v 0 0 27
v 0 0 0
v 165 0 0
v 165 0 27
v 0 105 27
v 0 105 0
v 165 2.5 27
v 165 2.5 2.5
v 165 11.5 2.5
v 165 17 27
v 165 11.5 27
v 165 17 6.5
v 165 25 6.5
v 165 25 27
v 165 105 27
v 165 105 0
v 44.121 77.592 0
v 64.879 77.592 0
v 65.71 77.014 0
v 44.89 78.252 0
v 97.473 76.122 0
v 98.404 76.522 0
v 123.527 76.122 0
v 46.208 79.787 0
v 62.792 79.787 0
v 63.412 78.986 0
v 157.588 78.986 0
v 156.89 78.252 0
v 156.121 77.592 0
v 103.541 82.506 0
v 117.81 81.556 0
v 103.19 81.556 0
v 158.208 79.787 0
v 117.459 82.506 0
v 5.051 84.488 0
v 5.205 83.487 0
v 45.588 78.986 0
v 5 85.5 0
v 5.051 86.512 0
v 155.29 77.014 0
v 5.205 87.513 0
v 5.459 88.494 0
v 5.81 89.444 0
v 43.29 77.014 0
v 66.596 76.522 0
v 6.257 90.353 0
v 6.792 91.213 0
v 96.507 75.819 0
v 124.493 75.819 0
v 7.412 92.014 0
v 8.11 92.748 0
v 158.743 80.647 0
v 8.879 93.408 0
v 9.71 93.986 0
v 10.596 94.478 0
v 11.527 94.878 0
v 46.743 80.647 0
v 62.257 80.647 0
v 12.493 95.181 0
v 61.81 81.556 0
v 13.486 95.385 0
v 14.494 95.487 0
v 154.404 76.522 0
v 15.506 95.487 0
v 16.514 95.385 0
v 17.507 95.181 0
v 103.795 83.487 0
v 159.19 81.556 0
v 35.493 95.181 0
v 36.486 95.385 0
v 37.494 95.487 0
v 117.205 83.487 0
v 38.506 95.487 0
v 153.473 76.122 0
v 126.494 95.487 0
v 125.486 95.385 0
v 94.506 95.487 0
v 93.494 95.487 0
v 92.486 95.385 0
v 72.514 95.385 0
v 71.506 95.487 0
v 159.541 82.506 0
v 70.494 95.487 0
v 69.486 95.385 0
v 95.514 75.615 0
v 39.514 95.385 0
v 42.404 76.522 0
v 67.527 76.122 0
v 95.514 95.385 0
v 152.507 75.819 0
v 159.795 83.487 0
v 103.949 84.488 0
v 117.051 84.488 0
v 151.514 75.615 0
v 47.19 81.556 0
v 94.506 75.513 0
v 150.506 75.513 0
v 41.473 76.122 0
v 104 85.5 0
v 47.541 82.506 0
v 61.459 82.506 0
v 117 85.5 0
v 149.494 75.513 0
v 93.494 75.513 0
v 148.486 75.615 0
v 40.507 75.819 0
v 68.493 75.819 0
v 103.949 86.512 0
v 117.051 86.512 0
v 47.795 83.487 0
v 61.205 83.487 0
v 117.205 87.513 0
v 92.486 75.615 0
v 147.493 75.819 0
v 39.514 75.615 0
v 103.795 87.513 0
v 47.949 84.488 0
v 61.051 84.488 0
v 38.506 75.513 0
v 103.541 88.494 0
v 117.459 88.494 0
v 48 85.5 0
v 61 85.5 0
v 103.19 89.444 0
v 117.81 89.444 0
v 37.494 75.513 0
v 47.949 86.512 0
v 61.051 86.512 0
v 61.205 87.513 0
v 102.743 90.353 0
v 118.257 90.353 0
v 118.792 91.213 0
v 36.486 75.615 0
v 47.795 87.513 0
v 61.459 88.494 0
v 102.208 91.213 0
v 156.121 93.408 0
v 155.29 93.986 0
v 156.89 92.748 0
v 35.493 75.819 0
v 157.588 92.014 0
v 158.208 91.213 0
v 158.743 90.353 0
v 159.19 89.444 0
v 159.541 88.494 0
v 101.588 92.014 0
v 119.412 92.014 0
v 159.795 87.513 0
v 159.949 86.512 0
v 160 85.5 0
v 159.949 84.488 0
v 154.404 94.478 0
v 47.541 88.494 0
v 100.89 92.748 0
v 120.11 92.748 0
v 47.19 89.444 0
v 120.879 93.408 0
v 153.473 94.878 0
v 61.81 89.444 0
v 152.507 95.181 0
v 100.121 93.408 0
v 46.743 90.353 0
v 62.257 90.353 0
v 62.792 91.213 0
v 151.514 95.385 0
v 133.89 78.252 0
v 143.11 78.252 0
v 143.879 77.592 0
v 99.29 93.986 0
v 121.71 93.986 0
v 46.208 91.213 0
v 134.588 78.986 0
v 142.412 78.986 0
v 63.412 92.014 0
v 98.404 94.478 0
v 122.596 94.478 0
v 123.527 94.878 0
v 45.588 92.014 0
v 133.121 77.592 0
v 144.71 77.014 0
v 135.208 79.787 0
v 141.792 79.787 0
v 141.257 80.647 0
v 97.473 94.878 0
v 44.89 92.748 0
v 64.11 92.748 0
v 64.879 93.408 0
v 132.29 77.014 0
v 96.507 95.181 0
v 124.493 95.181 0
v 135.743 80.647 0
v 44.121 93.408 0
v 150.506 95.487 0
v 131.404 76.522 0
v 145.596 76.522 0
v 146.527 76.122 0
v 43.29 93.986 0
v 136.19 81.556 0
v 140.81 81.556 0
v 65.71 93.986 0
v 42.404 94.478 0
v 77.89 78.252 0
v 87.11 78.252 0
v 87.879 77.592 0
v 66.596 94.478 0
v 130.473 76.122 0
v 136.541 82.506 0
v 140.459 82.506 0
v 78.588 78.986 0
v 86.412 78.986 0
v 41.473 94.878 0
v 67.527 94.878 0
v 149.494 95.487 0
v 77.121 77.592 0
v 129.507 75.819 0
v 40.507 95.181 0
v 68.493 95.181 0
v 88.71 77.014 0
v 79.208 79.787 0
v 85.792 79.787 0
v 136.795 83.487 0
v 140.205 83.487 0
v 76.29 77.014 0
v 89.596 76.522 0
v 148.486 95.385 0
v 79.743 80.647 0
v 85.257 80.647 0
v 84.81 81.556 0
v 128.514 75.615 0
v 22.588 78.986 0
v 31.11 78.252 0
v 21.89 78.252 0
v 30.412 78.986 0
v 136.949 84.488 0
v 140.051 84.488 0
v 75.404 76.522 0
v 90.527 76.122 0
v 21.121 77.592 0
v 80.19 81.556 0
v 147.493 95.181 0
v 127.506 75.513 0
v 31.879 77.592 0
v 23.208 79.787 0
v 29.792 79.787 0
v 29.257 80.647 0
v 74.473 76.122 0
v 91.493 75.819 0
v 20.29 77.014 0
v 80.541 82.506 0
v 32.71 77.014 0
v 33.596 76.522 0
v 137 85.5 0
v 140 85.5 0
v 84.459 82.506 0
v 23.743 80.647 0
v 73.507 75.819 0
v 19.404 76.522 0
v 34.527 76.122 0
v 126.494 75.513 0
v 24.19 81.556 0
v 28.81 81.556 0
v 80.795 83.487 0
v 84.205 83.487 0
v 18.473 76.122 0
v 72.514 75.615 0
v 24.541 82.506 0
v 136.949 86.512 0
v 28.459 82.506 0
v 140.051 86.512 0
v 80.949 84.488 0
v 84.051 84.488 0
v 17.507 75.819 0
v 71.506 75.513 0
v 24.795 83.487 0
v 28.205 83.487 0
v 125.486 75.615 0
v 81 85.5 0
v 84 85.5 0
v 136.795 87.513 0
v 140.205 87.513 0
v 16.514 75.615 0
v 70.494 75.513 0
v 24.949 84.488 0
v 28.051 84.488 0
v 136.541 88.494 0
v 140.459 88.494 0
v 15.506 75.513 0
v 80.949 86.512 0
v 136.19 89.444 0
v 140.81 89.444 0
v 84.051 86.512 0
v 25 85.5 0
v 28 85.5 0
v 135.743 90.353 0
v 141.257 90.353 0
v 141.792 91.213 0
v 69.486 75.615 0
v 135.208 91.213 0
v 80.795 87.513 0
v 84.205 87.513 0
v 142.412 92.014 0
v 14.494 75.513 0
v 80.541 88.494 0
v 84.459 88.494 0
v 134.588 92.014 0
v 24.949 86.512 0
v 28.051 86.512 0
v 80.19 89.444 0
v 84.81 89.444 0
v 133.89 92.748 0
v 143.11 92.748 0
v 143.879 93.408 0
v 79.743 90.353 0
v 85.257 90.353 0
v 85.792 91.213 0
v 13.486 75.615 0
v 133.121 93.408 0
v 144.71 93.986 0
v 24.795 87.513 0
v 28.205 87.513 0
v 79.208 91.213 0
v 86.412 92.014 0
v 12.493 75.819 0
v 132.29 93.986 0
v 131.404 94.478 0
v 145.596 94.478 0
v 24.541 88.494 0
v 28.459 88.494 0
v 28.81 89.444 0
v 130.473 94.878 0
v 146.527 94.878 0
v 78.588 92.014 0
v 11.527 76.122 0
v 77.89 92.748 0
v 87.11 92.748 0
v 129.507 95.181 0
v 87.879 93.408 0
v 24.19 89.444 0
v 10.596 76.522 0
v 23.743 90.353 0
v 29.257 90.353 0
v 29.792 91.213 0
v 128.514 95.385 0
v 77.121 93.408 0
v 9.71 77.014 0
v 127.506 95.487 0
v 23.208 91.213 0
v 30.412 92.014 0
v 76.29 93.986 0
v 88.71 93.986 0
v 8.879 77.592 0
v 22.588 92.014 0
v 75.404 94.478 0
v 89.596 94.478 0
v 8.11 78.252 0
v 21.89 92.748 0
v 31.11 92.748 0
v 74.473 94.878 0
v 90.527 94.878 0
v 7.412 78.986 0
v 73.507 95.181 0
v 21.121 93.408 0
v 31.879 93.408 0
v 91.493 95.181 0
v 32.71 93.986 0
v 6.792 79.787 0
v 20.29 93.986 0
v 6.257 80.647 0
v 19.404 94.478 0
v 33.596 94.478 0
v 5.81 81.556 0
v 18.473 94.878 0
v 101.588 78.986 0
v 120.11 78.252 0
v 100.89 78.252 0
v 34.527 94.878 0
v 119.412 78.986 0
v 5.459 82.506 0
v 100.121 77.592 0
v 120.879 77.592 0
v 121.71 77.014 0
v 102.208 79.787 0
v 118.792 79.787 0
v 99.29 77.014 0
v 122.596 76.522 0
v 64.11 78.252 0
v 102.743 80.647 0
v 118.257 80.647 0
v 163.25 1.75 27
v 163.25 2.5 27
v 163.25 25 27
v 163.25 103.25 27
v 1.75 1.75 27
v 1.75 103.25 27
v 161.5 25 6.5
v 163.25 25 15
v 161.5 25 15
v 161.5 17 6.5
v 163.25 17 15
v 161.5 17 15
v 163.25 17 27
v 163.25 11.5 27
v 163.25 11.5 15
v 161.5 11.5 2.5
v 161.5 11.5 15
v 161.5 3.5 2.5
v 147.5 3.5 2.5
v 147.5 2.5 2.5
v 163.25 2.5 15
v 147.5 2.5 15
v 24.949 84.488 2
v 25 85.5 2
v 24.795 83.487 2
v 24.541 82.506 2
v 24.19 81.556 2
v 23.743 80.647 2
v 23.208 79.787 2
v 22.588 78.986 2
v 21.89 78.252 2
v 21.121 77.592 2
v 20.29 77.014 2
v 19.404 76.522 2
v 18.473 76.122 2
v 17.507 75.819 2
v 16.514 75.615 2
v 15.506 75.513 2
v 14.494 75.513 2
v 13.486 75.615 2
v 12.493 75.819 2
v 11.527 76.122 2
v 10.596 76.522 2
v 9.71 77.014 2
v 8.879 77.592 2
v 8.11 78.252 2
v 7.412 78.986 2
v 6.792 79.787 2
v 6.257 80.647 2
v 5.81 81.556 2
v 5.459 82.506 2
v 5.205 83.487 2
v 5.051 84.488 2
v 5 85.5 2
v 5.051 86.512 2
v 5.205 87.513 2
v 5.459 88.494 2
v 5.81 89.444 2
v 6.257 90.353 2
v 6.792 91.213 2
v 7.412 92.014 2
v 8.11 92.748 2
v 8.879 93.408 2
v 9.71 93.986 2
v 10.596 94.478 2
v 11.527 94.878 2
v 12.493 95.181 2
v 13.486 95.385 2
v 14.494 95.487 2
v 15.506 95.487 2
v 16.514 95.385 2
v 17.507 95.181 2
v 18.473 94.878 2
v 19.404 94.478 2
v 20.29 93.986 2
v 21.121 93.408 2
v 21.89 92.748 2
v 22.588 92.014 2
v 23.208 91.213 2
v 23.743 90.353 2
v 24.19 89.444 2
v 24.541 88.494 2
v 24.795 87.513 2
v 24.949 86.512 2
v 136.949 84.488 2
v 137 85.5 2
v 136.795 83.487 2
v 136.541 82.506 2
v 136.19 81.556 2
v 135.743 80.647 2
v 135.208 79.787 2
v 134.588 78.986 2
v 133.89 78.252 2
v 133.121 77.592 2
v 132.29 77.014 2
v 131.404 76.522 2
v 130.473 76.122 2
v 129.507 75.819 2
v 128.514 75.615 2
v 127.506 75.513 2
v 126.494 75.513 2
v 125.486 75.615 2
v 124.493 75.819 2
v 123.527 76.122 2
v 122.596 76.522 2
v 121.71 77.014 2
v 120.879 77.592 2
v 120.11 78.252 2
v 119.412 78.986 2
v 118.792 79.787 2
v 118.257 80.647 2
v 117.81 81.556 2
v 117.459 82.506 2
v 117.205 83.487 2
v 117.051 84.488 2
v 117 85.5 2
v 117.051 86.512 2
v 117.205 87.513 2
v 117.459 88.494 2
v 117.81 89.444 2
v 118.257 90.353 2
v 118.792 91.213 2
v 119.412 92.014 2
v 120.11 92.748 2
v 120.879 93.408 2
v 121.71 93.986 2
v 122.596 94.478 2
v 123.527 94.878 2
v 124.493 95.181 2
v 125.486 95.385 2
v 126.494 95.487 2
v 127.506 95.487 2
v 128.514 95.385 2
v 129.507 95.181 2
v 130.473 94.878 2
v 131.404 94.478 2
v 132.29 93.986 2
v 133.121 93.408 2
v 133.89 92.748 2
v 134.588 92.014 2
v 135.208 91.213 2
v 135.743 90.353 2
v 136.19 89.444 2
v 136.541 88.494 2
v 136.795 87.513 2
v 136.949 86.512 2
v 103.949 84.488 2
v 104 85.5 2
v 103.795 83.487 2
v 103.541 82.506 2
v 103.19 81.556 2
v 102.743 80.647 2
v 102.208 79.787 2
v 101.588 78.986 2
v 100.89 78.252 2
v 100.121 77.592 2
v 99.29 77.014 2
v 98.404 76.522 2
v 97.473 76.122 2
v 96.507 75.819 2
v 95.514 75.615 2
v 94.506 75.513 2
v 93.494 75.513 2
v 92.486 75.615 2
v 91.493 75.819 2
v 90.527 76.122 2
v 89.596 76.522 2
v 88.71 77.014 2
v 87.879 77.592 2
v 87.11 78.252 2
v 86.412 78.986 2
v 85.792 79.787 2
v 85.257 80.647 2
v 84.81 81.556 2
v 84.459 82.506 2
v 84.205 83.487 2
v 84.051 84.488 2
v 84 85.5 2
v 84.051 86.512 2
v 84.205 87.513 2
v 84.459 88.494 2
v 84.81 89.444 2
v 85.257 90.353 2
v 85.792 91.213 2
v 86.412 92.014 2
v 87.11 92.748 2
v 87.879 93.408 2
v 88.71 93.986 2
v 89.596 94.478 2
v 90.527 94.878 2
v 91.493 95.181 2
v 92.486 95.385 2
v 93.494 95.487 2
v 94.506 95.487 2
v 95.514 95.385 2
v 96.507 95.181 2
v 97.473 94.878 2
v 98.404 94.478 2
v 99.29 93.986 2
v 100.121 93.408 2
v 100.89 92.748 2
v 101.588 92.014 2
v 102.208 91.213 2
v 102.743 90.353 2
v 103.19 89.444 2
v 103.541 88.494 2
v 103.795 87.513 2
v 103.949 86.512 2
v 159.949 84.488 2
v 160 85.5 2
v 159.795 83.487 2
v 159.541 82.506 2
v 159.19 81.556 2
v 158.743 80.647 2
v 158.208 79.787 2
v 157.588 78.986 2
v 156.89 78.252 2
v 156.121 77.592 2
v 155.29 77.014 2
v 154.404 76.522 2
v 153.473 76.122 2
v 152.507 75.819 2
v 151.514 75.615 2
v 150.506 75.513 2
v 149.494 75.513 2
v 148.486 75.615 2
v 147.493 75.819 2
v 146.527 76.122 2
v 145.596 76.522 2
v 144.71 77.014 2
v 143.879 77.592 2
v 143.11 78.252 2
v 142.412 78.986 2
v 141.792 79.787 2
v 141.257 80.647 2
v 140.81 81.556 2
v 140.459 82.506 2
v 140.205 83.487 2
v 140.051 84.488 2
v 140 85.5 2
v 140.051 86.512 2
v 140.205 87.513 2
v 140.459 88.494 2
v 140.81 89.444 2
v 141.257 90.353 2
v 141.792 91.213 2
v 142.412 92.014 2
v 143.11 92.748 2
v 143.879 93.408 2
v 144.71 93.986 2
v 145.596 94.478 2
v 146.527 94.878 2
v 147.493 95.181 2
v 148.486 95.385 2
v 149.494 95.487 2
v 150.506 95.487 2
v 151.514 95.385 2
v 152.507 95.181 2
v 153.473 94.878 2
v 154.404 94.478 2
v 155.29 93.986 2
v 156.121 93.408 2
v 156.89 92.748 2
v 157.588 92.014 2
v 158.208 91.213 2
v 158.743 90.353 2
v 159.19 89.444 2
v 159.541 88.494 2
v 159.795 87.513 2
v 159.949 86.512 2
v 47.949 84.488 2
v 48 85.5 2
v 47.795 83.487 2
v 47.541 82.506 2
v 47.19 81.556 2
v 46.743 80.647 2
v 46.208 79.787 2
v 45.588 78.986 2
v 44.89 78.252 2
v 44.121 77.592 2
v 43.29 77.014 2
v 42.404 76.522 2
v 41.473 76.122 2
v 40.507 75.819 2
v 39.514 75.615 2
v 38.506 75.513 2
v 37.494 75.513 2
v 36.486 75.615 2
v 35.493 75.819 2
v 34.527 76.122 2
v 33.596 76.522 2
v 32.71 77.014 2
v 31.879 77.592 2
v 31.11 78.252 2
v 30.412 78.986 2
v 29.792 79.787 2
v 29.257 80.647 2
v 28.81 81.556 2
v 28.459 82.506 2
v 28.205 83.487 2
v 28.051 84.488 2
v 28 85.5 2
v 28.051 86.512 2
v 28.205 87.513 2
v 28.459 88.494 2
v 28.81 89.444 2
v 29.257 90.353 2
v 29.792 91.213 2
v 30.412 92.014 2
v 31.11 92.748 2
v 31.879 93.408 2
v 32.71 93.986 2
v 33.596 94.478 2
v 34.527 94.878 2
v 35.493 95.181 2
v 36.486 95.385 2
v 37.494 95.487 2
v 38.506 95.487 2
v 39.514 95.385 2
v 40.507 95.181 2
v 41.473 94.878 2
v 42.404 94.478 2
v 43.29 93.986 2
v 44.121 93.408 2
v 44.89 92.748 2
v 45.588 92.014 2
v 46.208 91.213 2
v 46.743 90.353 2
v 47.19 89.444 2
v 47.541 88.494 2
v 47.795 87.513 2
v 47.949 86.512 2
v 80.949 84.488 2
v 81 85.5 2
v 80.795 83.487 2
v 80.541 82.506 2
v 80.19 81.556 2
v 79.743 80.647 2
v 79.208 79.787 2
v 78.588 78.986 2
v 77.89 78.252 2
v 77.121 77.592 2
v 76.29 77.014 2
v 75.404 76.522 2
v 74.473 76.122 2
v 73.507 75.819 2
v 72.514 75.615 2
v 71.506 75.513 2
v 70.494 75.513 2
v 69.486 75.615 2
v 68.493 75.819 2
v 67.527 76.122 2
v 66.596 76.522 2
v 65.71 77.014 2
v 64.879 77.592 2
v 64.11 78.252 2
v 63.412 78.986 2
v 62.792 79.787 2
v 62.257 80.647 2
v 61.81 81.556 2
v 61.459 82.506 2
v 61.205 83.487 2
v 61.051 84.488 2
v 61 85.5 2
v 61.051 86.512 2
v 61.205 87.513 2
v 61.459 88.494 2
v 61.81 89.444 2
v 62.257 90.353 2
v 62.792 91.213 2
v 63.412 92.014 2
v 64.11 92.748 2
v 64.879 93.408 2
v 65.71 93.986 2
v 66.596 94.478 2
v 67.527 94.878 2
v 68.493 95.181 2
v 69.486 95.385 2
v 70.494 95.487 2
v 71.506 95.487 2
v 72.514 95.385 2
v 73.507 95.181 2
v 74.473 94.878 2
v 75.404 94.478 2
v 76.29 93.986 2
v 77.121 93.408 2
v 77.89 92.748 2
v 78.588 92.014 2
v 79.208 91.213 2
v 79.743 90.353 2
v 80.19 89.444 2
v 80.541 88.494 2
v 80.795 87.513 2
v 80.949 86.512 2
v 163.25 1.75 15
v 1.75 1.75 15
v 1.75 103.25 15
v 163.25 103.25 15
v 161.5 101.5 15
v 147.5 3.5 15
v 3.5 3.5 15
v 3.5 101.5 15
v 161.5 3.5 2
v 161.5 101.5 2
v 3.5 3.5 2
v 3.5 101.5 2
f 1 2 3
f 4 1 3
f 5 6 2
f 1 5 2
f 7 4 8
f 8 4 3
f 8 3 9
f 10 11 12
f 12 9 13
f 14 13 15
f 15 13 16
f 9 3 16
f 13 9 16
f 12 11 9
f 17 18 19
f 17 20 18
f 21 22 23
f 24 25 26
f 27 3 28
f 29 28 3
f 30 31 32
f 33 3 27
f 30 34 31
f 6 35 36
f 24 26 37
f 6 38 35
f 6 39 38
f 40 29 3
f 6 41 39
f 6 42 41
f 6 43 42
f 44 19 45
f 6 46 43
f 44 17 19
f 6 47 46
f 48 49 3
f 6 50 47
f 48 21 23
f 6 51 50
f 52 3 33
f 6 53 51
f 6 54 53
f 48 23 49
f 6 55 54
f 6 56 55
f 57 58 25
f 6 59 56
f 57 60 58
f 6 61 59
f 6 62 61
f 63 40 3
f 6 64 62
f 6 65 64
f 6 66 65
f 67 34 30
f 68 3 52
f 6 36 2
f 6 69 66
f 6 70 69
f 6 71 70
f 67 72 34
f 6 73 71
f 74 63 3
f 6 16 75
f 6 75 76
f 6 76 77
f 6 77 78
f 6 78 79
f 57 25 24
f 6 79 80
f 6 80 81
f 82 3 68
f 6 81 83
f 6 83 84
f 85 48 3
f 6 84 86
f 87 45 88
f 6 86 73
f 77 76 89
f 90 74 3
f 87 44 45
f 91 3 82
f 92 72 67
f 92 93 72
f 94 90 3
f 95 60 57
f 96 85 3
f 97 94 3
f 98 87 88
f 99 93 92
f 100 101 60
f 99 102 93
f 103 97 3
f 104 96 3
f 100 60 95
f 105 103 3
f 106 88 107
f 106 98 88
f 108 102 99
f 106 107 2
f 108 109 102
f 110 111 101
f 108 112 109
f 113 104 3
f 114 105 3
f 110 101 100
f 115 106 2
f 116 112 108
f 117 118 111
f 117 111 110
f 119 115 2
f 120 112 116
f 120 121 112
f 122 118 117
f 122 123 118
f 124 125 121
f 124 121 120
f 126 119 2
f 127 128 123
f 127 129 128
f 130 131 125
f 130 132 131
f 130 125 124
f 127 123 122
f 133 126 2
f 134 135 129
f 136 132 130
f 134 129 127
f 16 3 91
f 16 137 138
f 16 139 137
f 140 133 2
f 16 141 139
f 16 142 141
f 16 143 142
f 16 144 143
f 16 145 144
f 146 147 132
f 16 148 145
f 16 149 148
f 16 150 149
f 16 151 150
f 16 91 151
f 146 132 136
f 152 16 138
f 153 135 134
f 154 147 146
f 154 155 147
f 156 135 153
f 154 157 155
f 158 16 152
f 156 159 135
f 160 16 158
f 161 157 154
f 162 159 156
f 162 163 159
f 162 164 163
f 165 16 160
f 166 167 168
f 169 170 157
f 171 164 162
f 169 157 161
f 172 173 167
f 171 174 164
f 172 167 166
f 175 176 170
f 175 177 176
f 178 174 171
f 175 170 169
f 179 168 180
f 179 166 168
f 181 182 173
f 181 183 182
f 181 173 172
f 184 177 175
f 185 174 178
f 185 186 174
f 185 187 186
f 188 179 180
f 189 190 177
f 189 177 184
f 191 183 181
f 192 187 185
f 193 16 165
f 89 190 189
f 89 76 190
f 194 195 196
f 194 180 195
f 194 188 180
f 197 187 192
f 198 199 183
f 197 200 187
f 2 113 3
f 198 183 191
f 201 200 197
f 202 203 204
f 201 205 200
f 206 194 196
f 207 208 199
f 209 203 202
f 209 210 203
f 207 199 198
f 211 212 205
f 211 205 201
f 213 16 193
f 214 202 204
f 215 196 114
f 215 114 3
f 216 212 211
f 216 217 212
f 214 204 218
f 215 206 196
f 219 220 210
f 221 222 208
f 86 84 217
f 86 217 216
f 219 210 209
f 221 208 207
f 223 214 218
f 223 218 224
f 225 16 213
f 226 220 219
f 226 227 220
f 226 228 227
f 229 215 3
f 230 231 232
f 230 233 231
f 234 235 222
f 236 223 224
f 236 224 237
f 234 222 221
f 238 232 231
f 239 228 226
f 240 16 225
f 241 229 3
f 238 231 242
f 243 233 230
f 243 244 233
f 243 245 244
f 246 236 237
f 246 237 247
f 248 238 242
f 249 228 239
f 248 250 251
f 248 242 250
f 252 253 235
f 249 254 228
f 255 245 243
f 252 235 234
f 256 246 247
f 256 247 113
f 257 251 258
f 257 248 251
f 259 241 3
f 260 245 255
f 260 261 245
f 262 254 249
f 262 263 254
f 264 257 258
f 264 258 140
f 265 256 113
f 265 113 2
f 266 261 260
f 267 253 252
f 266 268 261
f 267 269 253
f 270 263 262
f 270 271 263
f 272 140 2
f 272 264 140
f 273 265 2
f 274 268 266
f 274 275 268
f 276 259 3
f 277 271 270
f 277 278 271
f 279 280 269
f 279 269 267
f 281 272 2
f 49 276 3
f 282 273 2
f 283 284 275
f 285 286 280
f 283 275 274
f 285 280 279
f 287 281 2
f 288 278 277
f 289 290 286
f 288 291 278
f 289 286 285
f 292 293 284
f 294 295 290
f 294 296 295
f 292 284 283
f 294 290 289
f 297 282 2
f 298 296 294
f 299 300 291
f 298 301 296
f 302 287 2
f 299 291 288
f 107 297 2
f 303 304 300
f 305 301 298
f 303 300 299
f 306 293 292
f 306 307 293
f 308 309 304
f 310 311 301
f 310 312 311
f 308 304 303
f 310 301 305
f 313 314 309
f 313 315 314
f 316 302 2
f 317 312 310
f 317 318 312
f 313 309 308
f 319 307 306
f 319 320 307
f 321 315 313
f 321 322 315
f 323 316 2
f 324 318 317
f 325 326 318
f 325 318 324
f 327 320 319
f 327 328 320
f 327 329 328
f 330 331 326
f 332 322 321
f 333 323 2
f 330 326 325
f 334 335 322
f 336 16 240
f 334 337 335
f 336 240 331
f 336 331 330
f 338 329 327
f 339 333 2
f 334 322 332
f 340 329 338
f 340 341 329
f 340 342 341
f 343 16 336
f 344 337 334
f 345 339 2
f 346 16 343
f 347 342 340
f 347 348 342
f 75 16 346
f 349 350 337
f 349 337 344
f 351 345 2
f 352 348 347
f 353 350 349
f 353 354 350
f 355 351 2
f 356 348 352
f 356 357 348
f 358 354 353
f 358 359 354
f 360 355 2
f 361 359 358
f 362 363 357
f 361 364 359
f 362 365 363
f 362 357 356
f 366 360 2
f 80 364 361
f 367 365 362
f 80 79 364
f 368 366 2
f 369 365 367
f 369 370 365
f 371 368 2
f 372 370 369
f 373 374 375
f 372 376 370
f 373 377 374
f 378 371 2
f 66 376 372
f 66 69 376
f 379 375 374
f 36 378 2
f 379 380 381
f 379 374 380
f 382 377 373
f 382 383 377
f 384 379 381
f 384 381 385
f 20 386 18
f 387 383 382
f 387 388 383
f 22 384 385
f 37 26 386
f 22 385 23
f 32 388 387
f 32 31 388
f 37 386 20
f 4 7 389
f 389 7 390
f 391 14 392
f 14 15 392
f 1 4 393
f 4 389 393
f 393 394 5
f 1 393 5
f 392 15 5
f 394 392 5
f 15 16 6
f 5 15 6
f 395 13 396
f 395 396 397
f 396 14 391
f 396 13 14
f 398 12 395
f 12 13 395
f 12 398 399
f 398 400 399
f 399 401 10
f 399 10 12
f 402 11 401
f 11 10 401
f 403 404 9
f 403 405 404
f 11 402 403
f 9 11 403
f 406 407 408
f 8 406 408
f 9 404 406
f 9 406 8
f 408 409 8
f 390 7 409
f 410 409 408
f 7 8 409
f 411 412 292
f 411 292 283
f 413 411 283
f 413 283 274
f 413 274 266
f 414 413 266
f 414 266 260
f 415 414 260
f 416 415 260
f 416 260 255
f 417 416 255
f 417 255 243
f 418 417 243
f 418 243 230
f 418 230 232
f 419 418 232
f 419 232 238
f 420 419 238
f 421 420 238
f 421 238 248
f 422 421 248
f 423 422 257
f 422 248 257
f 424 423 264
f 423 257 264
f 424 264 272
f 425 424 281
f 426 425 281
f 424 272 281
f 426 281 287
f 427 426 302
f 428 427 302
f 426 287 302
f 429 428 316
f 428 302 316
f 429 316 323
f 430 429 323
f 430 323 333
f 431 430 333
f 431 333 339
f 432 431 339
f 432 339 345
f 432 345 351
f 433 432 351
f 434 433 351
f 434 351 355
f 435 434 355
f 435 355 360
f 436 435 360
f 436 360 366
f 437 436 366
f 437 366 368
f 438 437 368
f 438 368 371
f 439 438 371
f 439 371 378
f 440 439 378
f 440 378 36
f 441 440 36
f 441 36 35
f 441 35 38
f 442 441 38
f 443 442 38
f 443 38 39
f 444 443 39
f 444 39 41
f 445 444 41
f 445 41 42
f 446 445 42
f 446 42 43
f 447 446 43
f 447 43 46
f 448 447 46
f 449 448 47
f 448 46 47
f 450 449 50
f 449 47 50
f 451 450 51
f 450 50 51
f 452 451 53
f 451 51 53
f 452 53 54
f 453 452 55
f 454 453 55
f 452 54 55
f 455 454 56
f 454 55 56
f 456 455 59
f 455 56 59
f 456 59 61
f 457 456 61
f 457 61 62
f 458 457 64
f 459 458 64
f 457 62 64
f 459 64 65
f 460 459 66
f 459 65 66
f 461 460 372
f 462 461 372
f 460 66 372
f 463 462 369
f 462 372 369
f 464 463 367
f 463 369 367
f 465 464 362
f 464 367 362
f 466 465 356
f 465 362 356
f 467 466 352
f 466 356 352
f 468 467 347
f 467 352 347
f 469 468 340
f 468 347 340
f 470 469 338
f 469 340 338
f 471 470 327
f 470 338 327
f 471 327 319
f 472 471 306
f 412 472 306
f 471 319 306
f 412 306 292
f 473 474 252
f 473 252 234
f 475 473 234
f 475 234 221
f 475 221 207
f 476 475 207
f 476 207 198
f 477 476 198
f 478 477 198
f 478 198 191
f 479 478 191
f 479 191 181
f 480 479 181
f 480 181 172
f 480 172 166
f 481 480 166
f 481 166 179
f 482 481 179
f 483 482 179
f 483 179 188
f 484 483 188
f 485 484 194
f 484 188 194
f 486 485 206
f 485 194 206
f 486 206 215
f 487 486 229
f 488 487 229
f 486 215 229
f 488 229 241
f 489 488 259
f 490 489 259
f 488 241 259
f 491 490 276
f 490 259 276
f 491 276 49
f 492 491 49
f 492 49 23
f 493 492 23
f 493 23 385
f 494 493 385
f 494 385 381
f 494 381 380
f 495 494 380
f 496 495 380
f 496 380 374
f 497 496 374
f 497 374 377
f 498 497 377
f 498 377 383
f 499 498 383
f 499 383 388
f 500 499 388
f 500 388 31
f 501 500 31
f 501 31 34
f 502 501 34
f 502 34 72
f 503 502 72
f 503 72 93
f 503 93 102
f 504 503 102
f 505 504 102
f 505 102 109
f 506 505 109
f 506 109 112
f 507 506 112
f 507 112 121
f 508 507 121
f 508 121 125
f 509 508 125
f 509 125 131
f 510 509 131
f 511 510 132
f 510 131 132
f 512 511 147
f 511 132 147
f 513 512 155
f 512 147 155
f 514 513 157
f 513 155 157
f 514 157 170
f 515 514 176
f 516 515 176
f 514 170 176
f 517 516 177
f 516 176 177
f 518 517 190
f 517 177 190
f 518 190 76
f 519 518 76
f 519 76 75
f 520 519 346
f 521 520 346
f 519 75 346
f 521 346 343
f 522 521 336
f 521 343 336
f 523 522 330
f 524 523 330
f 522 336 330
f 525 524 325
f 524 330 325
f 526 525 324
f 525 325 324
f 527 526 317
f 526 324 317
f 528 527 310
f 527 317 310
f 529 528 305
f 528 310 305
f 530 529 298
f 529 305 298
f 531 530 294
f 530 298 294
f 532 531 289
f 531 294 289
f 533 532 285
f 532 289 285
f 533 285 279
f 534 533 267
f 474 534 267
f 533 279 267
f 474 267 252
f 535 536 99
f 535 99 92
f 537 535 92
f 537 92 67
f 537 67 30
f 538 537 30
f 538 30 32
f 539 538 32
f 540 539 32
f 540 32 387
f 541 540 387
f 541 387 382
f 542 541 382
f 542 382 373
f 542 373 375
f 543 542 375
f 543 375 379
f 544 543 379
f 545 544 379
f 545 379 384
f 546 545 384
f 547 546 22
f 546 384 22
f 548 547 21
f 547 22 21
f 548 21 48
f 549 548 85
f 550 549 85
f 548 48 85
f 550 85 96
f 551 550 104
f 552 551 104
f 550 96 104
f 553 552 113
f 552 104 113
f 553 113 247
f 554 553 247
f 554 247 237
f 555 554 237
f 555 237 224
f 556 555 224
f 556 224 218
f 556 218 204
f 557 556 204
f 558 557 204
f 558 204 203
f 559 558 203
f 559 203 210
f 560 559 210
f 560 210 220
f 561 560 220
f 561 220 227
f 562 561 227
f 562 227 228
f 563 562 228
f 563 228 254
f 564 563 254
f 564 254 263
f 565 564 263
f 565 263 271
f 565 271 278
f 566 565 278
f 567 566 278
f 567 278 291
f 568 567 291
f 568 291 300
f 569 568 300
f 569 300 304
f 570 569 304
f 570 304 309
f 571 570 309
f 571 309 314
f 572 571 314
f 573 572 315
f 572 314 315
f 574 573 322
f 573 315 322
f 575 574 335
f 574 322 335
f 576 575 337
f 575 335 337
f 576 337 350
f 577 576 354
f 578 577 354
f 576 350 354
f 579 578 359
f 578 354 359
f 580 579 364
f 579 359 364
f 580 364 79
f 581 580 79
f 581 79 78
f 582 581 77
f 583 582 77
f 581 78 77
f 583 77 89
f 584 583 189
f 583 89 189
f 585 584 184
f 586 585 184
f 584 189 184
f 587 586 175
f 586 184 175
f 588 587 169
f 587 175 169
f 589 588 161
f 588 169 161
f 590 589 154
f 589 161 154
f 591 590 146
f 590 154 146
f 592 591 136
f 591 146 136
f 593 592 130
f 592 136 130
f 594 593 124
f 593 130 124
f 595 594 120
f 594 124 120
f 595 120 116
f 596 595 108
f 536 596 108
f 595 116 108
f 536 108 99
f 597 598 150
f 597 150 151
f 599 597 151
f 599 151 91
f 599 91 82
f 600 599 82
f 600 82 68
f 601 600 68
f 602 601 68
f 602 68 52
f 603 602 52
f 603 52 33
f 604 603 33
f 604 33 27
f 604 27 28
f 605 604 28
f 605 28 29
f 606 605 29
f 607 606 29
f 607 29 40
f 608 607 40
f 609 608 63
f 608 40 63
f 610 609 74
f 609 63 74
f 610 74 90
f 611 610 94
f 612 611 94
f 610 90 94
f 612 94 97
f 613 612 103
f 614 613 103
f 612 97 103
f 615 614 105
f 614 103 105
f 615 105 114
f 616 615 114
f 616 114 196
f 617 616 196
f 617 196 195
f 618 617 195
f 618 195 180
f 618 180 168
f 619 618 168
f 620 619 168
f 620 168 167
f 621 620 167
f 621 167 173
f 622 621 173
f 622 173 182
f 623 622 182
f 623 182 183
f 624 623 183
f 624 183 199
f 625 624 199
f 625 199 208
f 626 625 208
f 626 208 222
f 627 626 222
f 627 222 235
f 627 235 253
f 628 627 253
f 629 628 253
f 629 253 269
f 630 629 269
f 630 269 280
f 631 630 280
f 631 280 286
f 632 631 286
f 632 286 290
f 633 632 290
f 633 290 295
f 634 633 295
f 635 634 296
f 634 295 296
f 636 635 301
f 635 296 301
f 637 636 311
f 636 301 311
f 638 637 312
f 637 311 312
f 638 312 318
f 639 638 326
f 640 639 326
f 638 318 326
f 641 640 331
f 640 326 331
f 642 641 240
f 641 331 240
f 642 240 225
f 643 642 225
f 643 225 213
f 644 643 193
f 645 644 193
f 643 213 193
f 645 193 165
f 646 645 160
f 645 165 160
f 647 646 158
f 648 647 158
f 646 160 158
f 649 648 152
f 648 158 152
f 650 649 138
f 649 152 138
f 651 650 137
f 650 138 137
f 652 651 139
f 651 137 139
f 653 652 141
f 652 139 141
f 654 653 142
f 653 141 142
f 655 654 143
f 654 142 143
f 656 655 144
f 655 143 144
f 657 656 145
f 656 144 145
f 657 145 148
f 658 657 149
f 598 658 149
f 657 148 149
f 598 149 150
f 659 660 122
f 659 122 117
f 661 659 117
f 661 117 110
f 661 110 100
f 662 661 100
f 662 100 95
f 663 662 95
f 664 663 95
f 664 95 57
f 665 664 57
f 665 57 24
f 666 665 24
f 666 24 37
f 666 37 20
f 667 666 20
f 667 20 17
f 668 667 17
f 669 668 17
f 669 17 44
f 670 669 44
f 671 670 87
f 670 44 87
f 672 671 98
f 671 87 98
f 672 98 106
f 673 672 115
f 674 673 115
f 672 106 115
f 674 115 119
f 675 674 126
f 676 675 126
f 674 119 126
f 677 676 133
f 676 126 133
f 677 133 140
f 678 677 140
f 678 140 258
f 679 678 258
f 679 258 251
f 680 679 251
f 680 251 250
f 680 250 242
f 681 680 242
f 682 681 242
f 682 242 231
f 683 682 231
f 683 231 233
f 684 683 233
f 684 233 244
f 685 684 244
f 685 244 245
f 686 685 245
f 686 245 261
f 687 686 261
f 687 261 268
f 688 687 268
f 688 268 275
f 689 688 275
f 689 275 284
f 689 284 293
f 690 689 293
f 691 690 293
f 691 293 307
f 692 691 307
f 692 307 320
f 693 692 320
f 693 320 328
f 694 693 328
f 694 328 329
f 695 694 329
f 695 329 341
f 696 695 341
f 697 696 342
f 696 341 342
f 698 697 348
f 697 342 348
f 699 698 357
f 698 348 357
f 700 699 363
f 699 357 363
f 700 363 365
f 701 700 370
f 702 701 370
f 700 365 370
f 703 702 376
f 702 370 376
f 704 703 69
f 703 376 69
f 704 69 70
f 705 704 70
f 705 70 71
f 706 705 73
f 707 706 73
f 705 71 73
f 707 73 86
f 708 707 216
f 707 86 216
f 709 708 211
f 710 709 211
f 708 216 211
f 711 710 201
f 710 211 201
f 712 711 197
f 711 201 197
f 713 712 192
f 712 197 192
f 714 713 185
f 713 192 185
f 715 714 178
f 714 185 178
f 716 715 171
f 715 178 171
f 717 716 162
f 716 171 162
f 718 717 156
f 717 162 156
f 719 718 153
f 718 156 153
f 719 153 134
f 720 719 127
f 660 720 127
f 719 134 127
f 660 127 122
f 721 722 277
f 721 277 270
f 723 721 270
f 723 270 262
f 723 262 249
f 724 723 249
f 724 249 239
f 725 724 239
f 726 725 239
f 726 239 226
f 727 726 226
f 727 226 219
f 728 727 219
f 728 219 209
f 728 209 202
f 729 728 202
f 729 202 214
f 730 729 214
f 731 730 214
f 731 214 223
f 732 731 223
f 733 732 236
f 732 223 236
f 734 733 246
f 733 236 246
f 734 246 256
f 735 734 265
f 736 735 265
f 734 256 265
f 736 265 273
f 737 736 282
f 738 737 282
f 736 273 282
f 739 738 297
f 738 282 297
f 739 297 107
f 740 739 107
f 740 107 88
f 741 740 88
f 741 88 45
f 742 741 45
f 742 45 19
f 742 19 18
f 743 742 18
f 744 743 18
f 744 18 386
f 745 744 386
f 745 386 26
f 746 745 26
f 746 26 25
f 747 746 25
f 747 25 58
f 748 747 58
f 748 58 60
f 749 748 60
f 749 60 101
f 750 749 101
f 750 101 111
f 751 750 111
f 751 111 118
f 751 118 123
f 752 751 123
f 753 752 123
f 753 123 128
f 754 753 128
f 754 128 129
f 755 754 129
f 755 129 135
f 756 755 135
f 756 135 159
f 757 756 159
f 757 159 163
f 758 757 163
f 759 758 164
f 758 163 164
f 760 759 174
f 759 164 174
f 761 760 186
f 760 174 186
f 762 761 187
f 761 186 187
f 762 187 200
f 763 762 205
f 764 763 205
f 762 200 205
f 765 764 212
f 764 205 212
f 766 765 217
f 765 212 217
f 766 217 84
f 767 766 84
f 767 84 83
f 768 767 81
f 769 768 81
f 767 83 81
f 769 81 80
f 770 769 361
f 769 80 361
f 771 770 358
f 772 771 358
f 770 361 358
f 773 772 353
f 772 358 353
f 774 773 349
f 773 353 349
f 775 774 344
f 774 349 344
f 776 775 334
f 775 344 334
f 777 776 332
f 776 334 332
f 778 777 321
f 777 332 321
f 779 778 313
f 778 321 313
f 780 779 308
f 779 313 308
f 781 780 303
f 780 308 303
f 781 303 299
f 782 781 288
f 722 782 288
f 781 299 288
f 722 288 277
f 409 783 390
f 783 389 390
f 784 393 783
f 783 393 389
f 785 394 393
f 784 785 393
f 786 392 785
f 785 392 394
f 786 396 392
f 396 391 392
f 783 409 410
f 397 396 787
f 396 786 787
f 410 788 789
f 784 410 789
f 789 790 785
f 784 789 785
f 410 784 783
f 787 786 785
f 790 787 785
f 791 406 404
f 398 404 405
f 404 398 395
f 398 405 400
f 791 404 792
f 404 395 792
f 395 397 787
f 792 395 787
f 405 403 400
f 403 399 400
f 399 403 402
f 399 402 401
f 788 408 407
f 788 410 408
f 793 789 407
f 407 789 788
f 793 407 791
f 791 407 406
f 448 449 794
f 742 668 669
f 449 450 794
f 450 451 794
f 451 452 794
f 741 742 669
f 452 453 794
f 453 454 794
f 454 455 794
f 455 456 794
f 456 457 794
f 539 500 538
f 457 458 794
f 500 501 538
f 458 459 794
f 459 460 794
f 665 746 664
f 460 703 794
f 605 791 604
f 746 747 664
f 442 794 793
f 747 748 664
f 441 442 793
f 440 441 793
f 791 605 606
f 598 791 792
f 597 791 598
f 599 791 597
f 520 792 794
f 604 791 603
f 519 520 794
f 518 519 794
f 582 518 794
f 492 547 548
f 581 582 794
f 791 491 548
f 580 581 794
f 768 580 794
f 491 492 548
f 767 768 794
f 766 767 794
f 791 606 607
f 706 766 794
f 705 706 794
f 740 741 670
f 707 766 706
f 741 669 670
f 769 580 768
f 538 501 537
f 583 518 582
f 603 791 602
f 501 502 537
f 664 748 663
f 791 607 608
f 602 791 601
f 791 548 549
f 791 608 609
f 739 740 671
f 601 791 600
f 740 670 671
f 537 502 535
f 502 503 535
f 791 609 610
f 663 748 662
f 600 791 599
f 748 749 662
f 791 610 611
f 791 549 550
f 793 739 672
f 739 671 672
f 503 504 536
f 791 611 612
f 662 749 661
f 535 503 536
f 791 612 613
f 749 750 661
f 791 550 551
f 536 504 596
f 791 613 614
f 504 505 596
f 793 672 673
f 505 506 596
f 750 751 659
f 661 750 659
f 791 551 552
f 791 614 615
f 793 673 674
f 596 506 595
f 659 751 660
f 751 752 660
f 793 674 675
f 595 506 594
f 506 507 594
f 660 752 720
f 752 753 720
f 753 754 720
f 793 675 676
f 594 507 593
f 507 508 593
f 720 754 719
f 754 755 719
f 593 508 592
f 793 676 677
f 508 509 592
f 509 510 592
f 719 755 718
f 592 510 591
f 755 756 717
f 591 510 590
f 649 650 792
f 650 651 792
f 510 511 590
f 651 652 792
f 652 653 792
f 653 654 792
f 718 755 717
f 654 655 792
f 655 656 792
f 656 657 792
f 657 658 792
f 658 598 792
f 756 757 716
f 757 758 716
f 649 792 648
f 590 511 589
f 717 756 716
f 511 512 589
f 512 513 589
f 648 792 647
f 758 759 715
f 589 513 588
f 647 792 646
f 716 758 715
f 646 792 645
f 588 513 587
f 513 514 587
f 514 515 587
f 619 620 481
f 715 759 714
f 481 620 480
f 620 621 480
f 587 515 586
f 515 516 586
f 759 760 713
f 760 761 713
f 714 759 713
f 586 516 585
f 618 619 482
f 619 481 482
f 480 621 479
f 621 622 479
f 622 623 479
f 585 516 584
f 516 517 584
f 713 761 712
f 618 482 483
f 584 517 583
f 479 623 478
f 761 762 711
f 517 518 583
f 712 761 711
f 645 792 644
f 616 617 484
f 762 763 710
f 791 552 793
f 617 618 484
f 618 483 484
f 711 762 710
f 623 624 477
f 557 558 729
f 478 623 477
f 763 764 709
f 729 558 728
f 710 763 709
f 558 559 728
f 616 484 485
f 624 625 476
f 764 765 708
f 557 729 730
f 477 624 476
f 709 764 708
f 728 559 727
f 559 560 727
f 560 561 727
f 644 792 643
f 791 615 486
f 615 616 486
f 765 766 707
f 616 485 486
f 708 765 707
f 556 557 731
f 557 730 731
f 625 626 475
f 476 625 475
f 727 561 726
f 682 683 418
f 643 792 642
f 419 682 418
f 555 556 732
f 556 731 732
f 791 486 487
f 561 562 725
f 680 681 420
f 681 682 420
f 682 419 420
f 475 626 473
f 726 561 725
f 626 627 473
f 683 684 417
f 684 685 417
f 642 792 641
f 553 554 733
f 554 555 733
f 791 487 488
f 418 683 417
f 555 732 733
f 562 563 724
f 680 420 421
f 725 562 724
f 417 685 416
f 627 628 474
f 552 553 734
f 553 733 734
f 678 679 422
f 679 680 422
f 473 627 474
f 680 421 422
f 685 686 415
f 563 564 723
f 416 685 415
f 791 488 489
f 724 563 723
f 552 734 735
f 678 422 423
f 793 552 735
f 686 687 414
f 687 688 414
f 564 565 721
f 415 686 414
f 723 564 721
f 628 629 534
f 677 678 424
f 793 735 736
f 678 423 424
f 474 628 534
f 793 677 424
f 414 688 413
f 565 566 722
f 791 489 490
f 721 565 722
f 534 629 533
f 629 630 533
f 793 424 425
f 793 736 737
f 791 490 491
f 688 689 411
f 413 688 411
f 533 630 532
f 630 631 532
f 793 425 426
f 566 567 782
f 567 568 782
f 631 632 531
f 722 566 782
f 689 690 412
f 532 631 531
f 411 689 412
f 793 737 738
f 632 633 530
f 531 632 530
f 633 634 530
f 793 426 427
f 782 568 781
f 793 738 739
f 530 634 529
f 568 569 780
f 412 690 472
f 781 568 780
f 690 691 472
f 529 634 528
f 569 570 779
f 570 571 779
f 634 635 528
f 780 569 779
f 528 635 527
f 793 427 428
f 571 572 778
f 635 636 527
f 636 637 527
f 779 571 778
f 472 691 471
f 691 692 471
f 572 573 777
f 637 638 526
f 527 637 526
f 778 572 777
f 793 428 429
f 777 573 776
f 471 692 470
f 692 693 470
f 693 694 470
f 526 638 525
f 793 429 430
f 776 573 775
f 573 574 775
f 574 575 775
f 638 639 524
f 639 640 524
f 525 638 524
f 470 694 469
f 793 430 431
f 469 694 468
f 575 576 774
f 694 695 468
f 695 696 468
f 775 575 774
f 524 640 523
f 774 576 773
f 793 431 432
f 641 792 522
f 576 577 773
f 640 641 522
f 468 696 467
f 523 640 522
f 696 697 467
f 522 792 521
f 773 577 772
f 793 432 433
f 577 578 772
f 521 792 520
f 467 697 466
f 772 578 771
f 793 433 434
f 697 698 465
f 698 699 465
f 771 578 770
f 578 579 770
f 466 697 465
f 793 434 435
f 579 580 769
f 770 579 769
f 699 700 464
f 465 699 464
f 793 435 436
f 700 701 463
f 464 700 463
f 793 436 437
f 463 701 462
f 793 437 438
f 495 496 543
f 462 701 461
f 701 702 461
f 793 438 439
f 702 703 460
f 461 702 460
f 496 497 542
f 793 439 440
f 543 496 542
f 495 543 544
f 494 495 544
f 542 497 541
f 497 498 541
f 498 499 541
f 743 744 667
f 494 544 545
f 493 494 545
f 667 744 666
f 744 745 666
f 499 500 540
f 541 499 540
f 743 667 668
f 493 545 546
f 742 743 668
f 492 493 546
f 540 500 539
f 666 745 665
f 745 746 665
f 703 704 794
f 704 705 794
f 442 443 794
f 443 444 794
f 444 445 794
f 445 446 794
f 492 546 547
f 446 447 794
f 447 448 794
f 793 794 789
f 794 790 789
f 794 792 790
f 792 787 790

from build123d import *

# Parameters (mm, degrees)
SKETCH_W        = 165
SKETCH_H        = 105
PAD_DEPTH       = 27
SKETCH001_W     = 158
SKETCH001_H     = 98
POCKET_DEPTH    = 25
SKETCH002_W     = 161.5
SKETCH002_H     = 101.5
POCKET001_DEPTH = 12
SKETCH003_R     = 10
POCKET002_DEPTH = 27.001
SKETCH004_W     = 17.5
SKETCH004_H     = 9
POCKET003_DEPTH = 24.5
SKETCH005_W     = 15
SKETCH005_H     = 8
POCKET004_DEPTH = 20.5


with BuildPart() as part:
    # Sketch → Pad (new body)
    with BuildSketch(Plane.XY):
        with Locations((82.5, 52.5)):
            Rectangle(SKETCH_W, SKETCH_H)
    extrude(amount=PAD_DEPTH)

    # Sketch001 → Pocket (cut)
    with BuildSketch(Plane.XY.offset(27)):
        with Locations((82.5, 52.5)):
            Rectangle(SKETCH001_W, SKETCH001_H)
    extrude(amount=-POCKET_DEPTH, mode=Mode.SUBTRACT)

    # Sketch002 → Pocket001 (cut)
    with BuildSketch(Plane.XY.offset(27)):
        with Locations((82.5, 52.5)):
            Rectangle(SKETCH002_W, SKETCH002_H)
    extrude(amount=-POCKET001_DEPTH, mode=Mode.SUBTRACT)

    # Sketch003 → Pocket002 (cut, through all)
    with BuildSketch(Plane(origin=(0, 0, 0), x_dir=(1, 0, 0), z_dir=(0, 0, -1))):
        with Locations((15, -85.5)):
            Circle(SKETCH003_R)
        with Locations((38, -85.5)):
            Circle(SKETCH003_R)
        with Locations((71, -85.5)):
            Circle(SKETCH003_R)
        with Locations((94, -85.5)):
            Circle(SKETCH003_R)
        with Locations((127, -85.5)):
            Circle(SKETCH003_R)
        with Locations((150, -85.5)):
            Circle(SKETCH003_R)
    extrude(amount=-POCKET002_DEPTH, mode=Mode.SUBTRACT)

    # Sketch004 → Pocket003 (cut)
    with BuildSketch(Plane.XY.offset(27)):
        with Locations((156.25, 7)):
            Rectangle(SKETCH004_W, SKETCH004_H)
    extrude(amount=-POCKET003_DEPTH, mode=Mode.SUBTRACT)

    # Sketch005 → Pocket004 (cut)
    with BuildSketch(Plane.XY.offset(27)):
        with Locations((157.5, 21)):
            Rectangle(SKETCH005_W, SKETCH005_H)
    extrude(amount=-POCKET004_DEPTH, mode=Mode.SUBTRACT)


solid = part.part
